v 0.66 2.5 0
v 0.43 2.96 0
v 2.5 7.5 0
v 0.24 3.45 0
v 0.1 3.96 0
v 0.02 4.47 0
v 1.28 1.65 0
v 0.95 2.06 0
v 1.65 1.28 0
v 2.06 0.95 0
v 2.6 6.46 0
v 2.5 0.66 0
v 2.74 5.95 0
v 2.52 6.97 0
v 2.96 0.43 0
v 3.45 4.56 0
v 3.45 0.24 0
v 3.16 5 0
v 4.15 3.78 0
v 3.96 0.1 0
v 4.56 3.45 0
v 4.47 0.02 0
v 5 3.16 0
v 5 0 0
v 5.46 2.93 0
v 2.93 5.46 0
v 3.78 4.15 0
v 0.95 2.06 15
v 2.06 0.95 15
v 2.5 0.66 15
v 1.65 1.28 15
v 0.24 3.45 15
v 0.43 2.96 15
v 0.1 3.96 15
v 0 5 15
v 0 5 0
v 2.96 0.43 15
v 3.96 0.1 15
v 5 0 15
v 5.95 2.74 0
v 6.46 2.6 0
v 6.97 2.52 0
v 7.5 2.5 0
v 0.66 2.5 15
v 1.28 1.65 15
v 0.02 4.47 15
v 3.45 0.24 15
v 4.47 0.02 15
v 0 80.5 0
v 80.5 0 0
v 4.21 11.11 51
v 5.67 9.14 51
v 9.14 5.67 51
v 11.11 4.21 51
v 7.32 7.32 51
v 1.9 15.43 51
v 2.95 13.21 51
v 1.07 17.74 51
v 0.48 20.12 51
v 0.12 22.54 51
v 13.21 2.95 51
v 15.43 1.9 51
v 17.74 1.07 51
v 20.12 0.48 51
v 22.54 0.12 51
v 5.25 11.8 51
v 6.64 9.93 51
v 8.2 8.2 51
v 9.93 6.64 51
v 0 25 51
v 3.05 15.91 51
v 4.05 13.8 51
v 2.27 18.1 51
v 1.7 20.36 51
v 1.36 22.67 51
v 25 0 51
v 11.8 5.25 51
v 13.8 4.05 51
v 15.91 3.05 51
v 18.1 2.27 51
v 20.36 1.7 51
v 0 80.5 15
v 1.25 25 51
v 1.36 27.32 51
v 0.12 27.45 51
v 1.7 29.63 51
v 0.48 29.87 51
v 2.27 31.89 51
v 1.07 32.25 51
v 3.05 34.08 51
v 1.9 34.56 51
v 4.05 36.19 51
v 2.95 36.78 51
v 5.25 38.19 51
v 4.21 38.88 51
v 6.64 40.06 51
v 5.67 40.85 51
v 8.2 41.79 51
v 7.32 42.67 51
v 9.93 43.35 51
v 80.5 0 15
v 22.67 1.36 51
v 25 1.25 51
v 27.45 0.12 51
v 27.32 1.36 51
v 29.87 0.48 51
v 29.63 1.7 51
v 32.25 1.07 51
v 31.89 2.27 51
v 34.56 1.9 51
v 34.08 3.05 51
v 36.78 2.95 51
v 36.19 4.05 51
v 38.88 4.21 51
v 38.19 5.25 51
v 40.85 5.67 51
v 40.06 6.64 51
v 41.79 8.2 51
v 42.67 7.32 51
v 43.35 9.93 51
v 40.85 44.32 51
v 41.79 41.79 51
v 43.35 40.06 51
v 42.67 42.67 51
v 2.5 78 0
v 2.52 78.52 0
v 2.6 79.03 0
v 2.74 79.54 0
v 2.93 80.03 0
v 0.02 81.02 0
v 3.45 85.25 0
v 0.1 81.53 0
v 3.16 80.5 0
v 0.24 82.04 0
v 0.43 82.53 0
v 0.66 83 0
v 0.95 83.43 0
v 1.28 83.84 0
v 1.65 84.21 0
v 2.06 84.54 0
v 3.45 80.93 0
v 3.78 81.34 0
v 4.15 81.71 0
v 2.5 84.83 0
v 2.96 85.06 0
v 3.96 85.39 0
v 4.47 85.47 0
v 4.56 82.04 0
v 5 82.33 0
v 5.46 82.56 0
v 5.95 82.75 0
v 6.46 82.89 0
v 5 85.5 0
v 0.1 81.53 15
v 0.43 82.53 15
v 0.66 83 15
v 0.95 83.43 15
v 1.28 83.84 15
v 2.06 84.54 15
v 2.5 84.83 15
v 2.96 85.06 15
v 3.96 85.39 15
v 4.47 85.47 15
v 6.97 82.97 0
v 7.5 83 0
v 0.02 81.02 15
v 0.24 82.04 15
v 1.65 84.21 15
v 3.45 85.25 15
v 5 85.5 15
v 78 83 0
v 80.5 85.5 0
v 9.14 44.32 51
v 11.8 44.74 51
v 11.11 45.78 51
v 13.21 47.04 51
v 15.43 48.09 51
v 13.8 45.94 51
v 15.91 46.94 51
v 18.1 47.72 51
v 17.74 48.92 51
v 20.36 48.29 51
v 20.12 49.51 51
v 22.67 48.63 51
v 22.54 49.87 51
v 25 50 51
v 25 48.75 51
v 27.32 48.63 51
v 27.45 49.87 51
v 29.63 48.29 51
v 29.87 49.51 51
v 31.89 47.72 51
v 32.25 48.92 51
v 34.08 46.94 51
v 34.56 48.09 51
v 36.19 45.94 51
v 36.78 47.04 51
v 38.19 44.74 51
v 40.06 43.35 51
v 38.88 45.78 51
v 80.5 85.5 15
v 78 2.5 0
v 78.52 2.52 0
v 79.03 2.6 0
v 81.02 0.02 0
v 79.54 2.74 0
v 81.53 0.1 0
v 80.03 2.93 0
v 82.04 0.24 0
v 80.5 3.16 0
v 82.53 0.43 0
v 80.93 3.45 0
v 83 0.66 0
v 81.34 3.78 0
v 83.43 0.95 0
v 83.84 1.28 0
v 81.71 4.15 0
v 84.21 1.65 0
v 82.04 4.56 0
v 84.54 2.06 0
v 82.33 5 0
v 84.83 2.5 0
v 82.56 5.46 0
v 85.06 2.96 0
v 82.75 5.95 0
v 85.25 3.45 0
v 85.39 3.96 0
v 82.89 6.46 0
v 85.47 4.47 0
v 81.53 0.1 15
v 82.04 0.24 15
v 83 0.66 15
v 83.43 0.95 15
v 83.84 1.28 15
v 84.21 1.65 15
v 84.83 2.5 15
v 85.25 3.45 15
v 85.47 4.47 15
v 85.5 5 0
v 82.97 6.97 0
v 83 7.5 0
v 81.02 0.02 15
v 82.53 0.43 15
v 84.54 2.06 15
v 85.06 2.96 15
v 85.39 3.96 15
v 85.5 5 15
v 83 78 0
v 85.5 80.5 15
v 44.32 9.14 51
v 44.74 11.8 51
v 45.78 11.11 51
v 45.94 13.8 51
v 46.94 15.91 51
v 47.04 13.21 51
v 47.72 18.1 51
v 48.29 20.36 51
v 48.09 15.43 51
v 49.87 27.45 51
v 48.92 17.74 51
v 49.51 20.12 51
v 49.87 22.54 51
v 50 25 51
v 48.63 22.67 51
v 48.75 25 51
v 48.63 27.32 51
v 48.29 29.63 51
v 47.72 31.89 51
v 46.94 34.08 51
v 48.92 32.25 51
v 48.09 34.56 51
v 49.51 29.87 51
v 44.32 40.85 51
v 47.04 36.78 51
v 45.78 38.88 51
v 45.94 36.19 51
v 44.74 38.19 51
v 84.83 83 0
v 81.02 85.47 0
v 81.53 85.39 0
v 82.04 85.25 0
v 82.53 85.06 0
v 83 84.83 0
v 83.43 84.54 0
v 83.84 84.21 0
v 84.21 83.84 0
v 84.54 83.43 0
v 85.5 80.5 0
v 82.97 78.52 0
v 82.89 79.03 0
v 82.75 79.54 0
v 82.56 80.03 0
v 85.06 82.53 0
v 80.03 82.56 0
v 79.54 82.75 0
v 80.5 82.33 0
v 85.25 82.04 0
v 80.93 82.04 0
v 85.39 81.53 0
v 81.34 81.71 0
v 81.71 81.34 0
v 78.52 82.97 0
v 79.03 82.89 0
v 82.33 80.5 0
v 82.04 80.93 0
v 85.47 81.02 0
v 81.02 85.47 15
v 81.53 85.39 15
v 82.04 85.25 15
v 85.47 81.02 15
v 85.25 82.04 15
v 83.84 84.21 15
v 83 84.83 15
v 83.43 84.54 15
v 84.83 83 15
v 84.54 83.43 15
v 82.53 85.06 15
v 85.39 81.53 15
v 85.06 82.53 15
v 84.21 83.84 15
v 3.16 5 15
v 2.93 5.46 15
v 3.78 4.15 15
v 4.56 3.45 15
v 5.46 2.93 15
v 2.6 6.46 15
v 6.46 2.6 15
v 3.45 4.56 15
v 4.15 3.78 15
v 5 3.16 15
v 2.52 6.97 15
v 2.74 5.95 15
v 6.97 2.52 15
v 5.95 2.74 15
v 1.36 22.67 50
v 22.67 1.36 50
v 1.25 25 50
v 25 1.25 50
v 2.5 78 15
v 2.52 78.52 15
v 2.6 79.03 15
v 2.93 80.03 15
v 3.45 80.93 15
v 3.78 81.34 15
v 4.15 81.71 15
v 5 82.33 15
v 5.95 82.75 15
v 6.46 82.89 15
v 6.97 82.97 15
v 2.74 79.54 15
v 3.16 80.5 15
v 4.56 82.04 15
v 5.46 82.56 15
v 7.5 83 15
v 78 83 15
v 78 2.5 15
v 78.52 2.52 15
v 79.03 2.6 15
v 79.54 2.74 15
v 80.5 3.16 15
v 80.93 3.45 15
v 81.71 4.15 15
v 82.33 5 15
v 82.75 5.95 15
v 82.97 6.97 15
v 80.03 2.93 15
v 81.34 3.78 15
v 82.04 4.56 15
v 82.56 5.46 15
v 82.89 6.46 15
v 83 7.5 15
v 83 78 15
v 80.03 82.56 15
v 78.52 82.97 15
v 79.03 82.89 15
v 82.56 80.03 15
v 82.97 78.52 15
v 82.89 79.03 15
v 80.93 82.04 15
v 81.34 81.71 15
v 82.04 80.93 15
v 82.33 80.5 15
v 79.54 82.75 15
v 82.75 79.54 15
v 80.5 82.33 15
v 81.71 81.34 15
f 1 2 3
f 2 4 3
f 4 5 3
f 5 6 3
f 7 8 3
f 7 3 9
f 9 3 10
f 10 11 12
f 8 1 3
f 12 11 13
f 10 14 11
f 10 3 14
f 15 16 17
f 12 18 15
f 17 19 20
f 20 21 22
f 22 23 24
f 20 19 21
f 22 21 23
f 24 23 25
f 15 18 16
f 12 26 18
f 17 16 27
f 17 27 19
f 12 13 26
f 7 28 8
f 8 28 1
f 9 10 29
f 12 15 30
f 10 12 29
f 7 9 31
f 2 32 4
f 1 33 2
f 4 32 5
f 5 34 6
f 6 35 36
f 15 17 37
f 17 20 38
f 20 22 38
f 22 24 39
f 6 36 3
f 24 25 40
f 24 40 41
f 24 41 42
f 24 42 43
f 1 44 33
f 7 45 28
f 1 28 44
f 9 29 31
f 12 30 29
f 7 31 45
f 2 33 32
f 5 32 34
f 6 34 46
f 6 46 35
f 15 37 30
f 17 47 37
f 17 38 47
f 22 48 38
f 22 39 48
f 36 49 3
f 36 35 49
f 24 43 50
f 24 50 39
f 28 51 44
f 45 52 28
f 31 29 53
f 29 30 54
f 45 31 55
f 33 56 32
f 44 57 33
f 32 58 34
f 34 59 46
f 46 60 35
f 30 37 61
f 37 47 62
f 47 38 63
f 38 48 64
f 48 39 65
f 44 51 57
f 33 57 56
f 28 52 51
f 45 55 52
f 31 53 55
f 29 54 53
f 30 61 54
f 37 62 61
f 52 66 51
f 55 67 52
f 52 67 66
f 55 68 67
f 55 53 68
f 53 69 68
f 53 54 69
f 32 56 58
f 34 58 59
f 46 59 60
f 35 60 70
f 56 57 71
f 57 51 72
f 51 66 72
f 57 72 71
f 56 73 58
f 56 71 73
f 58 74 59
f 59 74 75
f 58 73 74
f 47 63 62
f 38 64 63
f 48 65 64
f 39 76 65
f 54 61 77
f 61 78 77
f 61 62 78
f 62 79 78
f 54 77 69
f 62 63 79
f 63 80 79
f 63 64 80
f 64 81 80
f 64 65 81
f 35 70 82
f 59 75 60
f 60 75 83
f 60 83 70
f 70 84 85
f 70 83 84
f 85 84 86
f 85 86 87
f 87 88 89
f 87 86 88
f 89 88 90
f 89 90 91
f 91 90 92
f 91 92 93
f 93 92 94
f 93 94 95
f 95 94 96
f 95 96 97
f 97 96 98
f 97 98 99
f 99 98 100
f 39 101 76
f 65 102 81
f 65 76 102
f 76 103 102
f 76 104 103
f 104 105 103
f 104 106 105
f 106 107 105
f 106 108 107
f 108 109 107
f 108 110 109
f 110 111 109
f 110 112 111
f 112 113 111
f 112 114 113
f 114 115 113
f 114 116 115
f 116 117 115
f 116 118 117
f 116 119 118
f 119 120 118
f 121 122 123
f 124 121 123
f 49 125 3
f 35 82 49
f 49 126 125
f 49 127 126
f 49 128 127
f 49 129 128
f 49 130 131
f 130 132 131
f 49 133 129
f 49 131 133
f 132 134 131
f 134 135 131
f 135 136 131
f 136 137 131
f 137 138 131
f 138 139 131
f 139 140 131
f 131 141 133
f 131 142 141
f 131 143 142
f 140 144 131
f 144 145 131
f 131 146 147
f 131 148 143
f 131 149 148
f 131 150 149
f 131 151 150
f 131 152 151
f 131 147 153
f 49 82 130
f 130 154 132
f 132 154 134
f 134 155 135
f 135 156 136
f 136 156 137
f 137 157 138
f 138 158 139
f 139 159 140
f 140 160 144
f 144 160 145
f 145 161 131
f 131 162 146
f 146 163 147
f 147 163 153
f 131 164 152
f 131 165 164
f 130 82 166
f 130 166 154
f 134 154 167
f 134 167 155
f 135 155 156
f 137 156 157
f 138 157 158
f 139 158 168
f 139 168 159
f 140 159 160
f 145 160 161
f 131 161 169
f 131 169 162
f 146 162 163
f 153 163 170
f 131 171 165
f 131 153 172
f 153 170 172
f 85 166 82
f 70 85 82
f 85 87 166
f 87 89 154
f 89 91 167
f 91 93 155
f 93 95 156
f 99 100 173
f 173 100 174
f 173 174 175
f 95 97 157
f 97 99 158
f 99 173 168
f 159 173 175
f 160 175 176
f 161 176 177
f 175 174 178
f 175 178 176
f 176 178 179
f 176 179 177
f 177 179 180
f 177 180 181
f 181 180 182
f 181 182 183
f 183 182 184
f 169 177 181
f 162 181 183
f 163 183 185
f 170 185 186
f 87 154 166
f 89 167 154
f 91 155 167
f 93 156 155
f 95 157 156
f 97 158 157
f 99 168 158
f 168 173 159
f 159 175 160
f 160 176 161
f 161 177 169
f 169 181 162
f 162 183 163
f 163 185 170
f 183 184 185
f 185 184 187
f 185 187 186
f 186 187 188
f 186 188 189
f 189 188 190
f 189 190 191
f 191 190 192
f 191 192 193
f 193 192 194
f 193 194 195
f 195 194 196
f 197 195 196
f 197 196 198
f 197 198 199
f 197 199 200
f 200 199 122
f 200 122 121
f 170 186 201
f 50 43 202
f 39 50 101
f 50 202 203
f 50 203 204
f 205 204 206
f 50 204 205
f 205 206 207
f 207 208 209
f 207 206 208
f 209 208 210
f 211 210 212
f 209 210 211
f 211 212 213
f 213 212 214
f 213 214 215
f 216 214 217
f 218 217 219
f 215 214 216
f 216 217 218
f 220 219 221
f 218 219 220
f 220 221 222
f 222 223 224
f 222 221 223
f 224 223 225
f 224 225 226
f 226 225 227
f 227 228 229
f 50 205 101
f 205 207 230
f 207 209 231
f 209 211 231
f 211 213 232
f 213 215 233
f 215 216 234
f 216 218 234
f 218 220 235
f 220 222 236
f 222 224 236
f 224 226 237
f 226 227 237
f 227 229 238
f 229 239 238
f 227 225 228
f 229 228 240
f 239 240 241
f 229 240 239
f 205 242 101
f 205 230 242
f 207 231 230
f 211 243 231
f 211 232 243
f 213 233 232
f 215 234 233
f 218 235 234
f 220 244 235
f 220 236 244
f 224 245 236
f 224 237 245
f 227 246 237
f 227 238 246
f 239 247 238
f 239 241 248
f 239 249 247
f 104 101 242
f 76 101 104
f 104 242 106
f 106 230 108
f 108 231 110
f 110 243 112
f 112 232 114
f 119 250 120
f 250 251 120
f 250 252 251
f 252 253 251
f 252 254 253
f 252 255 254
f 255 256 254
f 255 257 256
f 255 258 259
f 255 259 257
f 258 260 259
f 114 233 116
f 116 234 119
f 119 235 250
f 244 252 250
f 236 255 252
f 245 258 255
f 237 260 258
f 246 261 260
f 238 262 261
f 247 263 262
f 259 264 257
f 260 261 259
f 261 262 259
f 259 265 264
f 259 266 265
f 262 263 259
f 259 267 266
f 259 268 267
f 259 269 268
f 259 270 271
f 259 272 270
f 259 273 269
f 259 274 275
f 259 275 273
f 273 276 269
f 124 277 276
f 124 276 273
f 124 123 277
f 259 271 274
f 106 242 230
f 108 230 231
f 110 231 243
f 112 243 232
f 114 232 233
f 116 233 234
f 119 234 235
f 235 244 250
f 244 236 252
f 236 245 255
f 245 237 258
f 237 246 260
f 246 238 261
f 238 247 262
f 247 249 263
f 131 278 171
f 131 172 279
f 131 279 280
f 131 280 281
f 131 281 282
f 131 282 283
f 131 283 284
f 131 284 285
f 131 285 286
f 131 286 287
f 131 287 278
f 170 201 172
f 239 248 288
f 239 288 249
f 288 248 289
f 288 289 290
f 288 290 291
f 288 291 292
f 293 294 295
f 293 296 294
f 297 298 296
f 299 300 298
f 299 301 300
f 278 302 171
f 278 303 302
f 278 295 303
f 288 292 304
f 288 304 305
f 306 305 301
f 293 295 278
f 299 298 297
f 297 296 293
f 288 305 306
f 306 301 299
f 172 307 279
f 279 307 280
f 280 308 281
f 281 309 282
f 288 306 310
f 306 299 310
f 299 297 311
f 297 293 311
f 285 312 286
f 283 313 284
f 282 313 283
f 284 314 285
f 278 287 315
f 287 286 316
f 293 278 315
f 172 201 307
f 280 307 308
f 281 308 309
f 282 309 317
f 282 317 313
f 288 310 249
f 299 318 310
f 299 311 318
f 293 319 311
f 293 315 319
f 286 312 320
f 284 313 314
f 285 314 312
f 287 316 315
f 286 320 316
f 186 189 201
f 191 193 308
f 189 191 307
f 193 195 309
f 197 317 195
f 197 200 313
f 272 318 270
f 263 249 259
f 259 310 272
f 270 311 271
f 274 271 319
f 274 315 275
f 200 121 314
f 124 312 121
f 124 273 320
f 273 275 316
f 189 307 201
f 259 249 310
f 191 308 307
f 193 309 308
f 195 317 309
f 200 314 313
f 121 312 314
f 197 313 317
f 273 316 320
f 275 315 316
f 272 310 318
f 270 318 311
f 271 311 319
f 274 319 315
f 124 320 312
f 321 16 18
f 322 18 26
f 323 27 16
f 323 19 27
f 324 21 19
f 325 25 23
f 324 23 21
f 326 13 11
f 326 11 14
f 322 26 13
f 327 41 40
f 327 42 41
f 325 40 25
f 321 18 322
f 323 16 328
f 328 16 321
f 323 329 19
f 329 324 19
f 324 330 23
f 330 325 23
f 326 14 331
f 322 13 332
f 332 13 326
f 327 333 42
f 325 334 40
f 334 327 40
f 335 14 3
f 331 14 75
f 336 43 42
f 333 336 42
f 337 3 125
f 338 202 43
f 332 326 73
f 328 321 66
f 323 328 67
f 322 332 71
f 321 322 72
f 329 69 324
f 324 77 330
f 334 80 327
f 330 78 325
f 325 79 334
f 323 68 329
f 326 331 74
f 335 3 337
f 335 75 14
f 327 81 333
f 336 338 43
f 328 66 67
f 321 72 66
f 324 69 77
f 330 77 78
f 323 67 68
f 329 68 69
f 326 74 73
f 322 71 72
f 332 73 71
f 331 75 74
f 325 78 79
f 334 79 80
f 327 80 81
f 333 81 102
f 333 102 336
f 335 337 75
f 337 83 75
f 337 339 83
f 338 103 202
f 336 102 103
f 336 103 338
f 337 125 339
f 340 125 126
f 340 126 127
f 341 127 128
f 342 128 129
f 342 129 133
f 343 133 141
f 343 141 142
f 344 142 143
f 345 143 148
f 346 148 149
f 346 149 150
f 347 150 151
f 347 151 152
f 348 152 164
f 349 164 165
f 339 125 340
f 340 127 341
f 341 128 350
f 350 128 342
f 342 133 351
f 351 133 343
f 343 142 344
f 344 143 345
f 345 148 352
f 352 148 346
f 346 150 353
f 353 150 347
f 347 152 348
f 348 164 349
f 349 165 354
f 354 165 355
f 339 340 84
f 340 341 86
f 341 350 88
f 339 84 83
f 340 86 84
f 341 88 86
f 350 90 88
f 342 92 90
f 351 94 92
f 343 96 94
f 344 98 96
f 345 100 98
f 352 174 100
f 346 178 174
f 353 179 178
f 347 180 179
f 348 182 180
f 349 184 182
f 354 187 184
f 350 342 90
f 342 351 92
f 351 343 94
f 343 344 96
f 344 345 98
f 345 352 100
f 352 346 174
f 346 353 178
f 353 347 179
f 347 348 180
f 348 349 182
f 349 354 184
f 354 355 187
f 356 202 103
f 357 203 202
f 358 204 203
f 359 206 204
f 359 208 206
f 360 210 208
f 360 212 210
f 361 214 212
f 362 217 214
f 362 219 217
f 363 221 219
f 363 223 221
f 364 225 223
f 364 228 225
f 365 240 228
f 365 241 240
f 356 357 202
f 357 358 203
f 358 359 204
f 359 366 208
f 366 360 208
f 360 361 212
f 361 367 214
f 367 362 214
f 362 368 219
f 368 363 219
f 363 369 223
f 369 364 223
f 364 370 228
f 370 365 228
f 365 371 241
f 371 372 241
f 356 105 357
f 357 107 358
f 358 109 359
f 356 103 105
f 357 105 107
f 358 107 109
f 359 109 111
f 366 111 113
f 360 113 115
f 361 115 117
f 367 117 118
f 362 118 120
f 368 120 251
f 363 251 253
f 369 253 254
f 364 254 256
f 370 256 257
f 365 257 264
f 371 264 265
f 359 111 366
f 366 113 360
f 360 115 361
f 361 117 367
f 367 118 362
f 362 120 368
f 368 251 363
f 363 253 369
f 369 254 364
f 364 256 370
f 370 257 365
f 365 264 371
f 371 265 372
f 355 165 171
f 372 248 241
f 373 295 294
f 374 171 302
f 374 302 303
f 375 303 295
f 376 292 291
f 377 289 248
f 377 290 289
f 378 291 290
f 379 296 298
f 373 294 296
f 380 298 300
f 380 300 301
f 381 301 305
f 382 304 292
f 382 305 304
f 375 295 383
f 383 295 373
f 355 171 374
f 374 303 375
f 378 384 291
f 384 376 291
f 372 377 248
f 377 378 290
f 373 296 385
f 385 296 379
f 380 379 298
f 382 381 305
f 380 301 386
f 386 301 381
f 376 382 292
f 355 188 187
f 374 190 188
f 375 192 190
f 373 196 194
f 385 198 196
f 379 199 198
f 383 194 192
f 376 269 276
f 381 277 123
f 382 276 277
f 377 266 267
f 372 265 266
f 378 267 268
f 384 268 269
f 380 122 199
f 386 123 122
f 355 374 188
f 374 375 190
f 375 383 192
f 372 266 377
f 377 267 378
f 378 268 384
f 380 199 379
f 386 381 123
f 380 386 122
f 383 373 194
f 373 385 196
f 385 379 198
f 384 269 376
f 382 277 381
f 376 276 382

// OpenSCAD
// file: rounded_rect.scad
// module for a rounded rectangle
// 14.11.2025
// Sebastian Weigl

module rr(l, w, r, h)
{
linear_extrude(height = h, center = false, convexity = 0)
  translate([r, r, 0])
  offset(r=r, $fn = 60) 
  square([l-(2*r), w-(2*r)]);
}

// to use this add
// use <rounded_rect.scad>
// and 
// rr(x_length,y_length,radius,height);
// main file
// fan duct
// direct air flow
// version 1
// 25.05.2026 Sebastian Weigl

// // rr(x_length,y_length,radius,height);
$fn=64;
include <rounded_rect.scad>

// declare vars

//  first body
difference(){
hull(){
  translate([0,0,0])
  rr(85.5,85.5,5,15);
  translate([25,25,50])
  cylinder(h=1,d=50,center=false);}

hull(){
  translate([2.5,2.5,0])
  #rr(80.5,80.5,5,15);
  translate([25,25,50])
  cylinder(h=1,d=47.5,center=false);}
 }
